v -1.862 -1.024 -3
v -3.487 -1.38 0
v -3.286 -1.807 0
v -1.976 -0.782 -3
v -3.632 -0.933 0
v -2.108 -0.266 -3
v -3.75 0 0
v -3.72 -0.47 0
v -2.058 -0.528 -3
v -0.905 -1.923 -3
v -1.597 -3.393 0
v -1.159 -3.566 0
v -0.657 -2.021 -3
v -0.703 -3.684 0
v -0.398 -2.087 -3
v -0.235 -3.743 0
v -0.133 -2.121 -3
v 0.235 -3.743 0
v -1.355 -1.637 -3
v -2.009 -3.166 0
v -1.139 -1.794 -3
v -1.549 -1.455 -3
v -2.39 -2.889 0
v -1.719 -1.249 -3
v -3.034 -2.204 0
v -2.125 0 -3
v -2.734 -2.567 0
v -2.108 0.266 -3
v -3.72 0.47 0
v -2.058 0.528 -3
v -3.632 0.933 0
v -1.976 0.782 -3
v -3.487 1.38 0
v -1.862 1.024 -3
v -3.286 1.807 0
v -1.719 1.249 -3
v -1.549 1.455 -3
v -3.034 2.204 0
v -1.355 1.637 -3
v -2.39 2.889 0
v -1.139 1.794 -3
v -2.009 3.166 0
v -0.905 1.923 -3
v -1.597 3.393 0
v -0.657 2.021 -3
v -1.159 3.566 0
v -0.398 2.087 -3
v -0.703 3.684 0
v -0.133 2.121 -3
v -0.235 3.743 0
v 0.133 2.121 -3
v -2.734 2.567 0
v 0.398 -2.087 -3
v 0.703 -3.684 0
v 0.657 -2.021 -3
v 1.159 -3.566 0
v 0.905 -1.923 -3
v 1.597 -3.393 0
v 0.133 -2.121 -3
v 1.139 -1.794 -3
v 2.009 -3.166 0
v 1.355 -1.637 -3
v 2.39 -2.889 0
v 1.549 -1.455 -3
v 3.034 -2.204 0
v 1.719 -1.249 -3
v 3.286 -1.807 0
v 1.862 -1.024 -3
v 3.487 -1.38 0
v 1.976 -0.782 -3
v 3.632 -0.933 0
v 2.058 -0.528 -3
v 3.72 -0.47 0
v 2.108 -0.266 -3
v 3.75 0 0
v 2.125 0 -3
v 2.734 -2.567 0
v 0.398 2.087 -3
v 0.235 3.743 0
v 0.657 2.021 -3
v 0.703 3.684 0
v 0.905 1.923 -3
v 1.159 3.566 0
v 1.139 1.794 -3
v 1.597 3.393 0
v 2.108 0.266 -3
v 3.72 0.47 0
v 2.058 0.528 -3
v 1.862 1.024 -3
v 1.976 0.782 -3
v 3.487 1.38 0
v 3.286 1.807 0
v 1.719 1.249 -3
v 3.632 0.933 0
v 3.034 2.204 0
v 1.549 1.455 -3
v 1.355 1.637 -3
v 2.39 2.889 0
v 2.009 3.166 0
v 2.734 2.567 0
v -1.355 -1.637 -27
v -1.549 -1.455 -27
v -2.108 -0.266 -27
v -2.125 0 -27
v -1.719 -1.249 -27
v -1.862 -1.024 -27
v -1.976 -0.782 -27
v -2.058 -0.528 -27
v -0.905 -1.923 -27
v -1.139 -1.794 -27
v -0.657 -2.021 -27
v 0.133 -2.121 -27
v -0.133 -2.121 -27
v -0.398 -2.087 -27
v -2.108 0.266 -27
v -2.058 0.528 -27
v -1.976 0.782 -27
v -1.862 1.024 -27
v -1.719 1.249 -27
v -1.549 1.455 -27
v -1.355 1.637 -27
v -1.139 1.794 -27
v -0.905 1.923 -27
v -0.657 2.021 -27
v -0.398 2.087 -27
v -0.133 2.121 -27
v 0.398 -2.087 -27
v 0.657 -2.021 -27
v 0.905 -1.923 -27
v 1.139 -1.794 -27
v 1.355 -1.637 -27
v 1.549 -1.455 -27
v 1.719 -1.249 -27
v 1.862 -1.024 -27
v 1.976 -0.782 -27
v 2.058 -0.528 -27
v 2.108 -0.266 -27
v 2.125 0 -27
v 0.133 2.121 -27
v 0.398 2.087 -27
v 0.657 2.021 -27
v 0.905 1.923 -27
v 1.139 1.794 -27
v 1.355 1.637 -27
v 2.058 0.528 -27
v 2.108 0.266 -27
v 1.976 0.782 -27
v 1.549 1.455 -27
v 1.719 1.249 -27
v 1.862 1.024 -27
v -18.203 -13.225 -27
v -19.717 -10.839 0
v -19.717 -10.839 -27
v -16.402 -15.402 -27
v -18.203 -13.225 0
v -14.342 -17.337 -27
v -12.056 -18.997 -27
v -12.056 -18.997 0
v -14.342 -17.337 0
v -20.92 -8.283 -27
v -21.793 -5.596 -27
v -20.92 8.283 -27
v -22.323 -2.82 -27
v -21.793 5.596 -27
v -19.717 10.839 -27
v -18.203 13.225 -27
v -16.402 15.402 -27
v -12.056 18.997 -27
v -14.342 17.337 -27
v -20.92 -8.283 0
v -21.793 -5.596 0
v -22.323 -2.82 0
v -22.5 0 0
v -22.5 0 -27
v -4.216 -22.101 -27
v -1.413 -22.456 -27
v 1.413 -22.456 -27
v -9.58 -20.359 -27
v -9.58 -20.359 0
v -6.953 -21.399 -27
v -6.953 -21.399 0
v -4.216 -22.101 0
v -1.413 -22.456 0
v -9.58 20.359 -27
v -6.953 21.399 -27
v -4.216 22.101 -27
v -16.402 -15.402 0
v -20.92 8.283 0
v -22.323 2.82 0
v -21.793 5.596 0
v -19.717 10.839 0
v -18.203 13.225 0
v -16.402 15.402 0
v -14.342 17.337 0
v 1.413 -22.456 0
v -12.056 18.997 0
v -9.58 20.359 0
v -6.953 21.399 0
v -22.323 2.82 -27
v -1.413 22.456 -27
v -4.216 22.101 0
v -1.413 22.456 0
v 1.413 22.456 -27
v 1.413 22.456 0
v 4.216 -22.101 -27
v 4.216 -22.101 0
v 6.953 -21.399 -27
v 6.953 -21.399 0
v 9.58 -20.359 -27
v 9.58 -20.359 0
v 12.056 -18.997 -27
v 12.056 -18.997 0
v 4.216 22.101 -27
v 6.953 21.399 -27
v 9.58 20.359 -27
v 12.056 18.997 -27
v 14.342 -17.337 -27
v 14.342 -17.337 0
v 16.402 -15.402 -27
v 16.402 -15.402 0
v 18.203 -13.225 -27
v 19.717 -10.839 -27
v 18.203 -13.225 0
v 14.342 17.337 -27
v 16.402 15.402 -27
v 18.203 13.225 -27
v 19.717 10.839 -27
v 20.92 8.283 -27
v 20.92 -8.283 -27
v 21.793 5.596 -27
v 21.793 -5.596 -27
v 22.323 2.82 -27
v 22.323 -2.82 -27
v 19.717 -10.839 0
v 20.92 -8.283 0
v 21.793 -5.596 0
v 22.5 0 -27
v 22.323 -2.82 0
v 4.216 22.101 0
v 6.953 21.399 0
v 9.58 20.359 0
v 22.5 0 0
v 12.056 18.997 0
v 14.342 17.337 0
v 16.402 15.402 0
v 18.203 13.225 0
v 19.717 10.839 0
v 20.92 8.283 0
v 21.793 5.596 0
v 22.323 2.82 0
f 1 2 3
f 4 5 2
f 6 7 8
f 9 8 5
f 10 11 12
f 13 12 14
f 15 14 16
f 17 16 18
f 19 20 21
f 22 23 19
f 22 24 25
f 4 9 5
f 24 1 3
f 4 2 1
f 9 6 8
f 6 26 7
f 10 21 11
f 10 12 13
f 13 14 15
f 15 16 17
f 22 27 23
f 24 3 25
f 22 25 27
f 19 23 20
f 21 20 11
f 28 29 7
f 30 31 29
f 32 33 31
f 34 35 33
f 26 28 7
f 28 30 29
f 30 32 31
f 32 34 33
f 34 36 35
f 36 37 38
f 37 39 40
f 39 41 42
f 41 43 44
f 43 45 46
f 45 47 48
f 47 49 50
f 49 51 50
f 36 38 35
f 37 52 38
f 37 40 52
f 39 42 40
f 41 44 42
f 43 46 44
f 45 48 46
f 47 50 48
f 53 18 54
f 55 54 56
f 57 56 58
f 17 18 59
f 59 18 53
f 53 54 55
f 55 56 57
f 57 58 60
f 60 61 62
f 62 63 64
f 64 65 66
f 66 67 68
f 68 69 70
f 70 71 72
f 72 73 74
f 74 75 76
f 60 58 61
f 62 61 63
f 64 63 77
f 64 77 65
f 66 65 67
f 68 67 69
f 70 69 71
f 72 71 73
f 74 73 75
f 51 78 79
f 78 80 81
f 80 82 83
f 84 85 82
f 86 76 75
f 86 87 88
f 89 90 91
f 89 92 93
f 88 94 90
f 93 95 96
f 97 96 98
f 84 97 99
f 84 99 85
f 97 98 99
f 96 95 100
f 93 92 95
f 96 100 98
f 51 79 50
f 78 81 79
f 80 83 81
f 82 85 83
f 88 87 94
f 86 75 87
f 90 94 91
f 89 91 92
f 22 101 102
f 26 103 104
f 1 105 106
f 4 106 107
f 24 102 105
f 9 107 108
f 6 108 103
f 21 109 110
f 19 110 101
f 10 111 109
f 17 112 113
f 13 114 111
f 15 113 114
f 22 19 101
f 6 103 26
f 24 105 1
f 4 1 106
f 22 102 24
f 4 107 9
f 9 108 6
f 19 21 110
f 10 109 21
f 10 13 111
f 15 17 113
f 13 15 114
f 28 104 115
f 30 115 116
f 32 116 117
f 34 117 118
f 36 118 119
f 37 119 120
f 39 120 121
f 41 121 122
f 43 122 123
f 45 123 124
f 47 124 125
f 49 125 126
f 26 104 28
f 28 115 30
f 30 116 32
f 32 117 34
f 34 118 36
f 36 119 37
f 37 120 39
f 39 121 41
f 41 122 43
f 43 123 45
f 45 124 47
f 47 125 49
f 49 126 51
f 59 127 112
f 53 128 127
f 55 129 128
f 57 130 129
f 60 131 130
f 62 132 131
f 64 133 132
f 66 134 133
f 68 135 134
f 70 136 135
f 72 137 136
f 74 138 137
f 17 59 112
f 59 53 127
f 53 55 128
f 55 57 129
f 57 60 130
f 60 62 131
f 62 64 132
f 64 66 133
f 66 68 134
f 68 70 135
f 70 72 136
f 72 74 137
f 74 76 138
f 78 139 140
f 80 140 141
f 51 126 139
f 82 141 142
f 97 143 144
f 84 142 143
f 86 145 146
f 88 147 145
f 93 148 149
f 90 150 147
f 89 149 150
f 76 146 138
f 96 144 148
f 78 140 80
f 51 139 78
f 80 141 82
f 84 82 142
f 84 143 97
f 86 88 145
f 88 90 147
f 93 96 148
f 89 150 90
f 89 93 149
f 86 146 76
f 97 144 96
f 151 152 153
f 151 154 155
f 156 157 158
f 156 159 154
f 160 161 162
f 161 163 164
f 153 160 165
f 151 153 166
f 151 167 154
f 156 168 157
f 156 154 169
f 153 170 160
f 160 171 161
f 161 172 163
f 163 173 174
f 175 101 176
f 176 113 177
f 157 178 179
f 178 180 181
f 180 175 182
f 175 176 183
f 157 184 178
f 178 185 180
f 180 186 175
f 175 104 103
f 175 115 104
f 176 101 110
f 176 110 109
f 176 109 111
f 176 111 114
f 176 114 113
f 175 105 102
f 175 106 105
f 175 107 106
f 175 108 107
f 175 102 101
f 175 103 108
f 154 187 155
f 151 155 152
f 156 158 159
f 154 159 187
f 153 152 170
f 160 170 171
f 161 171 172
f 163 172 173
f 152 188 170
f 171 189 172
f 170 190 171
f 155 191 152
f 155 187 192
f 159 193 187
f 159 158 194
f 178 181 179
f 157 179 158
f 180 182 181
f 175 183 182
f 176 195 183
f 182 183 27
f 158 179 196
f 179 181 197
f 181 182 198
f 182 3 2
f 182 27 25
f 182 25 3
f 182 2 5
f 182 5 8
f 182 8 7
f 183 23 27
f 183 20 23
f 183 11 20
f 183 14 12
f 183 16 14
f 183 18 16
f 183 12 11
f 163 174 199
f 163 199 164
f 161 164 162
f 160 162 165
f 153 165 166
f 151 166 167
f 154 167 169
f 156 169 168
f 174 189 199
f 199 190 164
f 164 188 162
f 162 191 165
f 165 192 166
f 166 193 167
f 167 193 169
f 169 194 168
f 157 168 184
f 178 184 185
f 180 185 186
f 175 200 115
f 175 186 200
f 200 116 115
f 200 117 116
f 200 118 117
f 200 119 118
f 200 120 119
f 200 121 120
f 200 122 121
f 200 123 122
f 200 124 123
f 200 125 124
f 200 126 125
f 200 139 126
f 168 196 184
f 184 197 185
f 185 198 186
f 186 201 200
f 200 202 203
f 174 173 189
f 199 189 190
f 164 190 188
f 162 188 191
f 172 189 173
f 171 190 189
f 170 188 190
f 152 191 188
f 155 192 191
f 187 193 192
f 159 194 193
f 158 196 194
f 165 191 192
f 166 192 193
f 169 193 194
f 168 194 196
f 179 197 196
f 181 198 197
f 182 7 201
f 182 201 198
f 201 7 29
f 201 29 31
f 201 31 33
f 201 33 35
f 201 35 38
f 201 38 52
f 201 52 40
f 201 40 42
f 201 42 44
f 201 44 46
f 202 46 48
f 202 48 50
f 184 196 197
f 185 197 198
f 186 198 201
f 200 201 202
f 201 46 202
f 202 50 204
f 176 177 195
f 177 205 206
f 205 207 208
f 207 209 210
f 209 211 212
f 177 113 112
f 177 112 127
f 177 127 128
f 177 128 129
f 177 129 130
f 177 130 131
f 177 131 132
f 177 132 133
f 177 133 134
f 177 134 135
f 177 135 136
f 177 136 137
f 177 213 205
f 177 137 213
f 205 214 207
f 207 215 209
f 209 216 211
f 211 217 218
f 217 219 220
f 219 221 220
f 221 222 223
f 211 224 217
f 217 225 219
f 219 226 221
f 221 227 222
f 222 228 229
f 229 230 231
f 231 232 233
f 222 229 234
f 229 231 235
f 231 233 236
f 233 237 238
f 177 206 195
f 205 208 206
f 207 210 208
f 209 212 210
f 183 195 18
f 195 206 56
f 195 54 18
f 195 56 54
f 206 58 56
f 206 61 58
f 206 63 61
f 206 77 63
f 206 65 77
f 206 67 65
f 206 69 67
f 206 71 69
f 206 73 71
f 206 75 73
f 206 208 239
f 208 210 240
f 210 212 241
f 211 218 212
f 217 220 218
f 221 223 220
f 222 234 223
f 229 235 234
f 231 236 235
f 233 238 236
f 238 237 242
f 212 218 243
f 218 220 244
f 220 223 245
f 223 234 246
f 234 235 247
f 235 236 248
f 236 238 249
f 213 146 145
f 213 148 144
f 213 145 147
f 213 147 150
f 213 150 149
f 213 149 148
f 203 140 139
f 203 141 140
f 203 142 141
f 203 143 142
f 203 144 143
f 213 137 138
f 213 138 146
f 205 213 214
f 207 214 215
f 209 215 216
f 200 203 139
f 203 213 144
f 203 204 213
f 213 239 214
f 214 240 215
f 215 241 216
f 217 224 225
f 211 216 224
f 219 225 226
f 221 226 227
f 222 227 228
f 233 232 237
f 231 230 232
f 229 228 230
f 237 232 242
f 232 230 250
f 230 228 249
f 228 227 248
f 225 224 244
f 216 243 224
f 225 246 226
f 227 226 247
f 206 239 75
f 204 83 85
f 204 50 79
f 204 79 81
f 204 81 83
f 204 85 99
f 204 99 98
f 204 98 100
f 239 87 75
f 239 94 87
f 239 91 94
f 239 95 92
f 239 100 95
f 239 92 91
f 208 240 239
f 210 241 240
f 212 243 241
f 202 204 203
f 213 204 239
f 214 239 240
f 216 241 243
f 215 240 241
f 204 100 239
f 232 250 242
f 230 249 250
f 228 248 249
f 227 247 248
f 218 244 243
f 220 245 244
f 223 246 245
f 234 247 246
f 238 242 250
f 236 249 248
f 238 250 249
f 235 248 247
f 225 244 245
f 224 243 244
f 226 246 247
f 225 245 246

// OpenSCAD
$fn = 50;

difference() {
	union() {
		translate(v = [0, 0, -27.0]) {
			cylinder(h = 27, r = 22.5);
		}
	}
	union() {
		translate(v = [0, 0, 0]) {
			rotate(a = [0, 0, 0]) {
				difference() {
					union() {
						translate(v = [0, 0, -30.0]) {
							cylinder(h = 30, r = 2.0);
						}
						translate(v = [0, 0, -3]) {
							cylinder(h = 3, r1 = 2.125, r2 = 3.75);
						}
						translate(v = [0, 0, -30.0]) {
							cylinder(h = 30, r = 2.125);
						}
						translate(v = [0, 0, -30.0]) {
							cylinder(h = 30, r = 2.0);
						}
					}
					union();
				}
			}
		}
	}
}
